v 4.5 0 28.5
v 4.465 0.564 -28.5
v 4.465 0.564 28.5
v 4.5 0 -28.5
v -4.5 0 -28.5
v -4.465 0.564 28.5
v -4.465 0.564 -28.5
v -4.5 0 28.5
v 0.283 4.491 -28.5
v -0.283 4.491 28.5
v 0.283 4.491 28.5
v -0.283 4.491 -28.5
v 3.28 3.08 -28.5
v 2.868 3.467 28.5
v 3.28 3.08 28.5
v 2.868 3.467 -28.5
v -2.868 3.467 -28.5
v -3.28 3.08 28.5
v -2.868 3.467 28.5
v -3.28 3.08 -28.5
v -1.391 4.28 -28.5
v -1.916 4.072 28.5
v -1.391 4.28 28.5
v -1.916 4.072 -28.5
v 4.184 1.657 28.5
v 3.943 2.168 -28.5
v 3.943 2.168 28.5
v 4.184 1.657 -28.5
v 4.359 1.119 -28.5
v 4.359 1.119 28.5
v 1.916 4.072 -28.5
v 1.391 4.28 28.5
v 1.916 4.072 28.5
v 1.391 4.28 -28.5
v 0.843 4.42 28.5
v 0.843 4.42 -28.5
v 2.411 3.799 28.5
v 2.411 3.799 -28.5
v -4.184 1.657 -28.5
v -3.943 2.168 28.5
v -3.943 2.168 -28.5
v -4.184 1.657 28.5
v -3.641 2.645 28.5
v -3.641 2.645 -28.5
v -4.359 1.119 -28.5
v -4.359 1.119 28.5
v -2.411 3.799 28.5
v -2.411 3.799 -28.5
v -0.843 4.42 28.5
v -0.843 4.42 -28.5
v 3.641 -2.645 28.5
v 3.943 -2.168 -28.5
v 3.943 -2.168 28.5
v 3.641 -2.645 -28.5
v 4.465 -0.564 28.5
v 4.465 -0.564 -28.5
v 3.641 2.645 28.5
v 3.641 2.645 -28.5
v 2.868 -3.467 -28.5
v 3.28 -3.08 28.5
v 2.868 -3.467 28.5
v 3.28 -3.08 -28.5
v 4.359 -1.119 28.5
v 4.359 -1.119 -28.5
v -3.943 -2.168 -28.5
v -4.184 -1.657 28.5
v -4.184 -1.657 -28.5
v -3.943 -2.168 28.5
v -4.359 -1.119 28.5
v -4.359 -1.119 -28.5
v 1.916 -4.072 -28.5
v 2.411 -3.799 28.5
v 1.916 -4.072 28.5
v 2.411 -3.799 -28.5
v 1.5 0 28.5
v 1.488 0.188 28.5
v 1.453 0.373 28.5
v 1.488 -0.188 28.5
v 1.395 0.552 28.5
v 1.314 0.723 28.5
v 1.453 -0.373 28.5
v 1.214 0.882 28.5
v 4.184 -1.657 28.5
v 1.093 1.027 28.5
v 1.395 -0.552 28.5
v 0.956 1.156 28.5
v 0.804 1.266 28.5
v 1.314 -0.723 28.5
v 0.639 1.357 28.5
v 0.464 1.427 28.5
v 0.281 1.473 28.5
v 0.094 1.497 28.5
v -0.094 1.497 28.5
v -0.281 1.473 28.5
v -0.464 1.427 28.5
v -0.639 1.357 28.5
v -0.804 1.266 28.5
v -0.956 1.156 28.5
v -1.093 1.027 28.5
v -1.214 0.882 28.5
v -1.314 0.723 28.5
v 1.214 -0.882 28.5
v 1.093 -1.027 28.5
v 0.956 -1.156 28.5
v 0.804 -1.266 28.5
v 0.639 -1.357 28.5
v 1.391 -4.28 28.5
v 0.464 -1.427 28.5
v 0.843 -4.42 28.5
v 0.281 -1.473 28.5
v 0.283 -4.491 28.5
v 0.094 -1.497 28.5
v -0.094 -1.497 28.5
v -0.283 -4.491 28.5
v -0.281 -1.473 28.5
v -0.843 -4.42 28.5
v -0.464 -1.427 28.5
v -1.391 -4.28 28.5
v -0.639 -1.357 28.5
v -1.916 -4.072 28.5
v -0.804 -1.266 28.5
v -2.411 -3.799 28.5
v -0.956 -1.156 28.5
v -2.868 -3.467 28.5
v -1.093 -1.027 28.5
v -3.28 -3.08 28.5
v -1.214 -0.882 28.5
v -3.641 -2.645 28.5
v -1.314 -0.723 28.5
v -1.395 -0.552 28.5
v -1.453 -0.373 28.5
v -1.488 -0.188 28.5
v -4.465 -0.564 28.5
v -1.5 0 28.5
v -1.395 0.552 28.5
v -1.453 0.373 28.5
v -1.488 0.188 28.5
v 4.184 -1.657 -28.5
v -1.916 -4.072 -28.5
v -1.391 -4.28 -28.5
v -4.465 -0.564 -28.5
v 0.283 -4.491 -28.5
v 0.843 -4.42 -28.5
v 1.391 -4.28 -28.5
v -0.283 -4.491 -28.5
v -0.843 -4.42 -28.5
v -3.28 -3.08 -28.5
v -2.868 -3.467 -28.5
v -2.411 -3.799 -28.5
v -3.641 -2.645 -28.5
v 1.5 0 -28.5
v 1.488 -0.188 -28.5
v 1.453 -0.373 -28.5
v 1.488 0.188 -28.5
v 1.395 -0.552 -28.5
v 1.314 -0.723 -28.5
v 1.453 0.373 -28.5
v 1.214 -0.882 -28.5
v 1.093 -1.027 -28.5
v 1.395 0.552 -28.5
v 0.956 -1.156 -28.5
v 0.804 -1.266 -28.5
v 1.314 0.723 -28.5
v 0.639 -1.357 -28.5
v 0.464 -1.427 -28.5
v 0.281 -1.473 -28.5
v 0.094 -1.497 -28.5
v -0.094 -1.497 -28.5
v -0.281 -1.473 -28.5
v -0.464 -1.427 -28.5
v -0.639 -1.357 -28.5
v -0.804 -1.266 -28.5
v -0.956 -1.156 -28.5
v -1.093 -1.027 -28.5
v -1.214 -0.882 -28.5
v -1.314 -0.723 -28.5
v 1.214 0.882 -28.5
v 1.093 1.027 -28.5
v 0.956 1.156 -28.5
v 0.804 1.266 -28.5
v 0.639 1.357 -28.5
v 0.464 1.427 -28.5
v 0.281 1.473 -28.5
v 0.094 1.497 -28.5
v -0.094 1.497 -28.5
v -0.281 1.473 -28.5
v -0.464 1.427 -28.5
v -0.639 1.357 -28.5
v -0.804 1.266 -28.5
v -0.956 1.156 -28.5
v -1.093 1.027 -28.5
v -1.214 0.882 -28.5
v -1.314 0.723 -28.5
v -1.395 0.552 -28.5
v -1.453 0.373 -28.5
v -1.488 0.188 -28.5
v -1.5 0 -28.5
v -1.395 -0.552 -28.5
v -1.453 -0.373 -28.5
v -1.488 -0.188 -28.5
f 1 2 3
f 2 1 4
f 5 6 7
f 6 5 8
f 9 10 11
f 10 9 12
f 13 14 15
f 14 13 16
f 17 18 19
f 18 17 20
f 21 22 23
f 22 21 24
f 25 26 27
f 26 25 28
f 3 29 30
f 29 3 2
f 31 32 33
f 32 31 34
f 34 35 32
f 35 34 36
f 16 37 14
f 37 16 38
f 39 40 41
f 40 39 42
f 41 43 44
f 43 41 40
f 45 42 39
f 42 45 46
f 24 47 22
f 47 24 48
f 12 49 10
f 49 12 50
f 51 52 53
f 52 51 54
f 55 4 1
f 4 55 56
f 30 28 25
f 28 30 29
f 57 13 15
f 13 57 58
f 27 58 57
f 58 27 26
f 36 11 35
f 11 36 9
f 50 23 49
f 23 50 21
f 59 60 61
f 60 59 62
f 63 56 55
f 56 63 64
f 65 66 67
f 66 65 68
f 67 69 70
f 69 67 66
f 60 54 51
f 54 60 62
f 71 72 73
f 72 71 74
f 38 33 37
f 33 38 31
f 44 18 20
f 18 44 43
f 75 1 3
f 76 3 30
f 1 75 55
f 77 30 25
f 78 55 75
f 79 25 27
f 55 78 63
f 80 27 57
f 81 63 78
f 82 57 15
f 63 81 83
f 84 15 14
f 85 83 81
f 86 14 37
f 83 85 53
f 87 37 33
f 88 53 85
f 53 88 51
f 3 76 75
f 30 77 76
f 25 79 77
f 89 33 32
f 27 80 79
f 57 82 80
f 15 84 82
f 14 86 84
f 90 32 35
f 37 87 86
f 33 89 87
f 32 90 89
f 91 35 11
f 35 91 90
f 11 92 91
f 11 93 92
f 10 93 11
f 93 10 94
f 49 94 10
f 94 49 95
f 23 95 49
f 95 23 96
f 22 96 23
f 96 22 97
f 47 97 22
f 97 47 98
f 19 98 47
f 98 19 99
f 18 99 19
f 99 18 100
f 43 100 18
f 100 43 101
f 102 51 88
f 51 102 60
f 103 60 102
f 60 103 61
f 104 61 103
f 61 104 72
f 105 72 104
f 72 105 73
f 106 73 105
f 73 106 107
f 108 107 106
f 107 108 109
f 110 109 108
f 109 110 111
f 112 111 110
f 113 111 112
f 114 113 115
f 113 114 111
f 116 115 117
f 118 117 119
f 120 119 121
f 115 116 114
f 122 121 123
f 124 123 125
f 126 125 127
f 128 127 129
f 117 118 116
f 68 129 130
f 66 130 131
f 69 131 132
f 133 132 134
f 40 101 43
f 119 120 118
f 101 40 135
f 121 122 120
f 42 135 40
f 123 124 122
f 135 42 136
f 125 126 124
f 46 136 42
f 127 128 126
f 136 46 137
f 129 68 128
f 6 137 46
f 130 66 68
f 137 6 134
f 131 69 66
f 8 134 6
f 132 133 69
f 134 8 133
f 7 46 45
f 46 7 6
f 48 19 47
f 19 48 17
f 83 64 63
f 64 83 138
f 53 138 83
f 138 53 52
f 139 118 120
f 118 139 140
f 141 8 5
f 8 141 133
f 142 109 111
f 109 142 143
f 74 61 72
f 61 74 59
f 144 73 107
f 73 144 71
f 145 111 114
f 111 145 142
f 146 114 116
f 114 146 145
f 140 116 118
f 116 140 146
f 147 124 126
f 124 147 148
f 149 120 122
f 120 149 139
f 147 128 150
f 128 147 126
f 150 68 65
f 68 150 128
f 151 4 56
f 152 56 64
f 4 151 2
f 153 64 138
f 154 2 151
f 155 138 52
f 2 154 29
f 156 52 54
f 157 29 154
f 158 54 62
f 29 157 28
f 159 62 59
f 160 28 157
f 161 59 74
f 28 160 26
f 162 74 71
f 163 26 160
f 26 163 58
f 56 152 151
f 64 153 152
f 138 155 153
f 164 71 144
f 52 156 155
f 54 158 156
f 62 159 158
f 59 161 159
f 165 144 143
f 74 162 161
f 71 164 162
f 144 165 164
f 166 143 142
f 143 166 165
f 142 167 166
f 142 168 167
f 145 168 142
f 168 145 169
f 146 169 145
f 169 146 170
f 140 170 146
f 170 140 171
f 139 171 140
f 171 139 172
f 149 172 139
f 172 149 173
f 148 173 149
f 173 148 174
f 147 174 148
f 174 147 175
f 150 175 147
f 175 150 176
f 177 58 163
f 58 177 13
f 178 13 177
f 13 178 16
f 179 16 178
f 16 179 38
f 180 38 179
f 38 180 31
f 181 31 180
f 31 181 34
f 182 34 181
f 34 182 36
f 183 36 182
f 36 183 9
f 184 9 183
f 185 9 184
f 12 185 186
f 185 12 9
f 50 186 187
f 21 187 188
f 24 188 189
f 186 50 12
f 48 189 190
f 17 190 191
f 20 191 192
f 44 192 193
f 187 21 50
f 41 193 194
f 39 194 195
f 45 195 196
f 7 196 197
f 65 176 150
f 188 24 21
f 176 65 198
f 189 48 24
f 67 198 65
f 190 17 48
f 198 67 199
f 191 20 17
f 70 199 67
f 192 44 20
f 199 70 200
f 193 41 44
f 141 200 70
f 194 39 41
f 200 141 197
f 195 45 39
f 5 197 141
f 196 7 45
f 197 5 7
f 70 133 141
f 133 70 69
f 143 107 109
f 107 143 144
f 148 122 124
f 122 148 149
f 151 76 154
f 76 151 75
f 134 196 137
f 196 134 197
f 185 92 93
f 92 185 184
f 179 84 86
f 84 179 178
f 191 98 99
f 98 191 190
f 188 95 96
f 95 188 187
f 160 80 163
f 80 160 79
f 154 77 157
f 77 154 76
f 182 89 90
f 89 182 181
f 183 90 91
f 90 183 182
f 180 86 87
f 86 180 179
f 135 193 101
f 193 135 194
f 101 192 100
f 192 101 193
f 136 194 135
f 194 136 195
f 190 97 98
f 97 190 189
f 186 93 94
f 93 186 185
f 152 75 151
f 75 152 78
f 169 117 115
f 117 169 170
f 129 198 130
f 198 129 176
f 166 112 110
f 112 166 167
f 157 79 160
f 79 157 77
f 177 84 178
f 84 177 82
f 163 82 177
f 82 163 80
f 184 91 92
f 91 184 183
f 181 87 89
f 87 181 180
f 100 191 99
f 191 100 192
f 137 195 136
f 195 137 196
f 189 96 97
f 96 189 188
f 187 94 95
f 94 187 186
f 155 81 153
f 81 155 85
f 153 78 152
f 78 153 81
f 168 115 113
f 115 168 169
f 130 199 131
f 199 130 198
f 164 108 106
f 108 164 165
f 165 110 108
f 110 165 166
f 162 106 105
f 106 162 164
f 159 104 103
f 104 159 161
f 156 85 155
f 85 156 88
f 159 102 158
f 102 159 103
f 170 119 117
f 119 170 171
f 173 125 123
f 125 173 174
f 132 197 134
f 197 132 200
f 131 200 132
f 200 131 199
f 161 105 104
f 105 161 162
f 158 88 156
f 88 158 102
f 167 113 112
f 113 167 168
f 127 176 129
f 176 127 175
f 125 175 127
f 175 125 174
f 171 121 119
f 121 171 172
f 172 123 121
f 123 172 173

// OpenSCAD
$fn = 50;


difference() {
	union() {
		translate(v = [0, 0, -28.5000000000]) {
			cylinder(h = 57, r = 4.5000000000);
		}
	}
	union() {
		translate(v = [0, 0, -100.0000000000]) {
			cylinder(h = 200, r = 1.5000000000);
		}
	}
}
